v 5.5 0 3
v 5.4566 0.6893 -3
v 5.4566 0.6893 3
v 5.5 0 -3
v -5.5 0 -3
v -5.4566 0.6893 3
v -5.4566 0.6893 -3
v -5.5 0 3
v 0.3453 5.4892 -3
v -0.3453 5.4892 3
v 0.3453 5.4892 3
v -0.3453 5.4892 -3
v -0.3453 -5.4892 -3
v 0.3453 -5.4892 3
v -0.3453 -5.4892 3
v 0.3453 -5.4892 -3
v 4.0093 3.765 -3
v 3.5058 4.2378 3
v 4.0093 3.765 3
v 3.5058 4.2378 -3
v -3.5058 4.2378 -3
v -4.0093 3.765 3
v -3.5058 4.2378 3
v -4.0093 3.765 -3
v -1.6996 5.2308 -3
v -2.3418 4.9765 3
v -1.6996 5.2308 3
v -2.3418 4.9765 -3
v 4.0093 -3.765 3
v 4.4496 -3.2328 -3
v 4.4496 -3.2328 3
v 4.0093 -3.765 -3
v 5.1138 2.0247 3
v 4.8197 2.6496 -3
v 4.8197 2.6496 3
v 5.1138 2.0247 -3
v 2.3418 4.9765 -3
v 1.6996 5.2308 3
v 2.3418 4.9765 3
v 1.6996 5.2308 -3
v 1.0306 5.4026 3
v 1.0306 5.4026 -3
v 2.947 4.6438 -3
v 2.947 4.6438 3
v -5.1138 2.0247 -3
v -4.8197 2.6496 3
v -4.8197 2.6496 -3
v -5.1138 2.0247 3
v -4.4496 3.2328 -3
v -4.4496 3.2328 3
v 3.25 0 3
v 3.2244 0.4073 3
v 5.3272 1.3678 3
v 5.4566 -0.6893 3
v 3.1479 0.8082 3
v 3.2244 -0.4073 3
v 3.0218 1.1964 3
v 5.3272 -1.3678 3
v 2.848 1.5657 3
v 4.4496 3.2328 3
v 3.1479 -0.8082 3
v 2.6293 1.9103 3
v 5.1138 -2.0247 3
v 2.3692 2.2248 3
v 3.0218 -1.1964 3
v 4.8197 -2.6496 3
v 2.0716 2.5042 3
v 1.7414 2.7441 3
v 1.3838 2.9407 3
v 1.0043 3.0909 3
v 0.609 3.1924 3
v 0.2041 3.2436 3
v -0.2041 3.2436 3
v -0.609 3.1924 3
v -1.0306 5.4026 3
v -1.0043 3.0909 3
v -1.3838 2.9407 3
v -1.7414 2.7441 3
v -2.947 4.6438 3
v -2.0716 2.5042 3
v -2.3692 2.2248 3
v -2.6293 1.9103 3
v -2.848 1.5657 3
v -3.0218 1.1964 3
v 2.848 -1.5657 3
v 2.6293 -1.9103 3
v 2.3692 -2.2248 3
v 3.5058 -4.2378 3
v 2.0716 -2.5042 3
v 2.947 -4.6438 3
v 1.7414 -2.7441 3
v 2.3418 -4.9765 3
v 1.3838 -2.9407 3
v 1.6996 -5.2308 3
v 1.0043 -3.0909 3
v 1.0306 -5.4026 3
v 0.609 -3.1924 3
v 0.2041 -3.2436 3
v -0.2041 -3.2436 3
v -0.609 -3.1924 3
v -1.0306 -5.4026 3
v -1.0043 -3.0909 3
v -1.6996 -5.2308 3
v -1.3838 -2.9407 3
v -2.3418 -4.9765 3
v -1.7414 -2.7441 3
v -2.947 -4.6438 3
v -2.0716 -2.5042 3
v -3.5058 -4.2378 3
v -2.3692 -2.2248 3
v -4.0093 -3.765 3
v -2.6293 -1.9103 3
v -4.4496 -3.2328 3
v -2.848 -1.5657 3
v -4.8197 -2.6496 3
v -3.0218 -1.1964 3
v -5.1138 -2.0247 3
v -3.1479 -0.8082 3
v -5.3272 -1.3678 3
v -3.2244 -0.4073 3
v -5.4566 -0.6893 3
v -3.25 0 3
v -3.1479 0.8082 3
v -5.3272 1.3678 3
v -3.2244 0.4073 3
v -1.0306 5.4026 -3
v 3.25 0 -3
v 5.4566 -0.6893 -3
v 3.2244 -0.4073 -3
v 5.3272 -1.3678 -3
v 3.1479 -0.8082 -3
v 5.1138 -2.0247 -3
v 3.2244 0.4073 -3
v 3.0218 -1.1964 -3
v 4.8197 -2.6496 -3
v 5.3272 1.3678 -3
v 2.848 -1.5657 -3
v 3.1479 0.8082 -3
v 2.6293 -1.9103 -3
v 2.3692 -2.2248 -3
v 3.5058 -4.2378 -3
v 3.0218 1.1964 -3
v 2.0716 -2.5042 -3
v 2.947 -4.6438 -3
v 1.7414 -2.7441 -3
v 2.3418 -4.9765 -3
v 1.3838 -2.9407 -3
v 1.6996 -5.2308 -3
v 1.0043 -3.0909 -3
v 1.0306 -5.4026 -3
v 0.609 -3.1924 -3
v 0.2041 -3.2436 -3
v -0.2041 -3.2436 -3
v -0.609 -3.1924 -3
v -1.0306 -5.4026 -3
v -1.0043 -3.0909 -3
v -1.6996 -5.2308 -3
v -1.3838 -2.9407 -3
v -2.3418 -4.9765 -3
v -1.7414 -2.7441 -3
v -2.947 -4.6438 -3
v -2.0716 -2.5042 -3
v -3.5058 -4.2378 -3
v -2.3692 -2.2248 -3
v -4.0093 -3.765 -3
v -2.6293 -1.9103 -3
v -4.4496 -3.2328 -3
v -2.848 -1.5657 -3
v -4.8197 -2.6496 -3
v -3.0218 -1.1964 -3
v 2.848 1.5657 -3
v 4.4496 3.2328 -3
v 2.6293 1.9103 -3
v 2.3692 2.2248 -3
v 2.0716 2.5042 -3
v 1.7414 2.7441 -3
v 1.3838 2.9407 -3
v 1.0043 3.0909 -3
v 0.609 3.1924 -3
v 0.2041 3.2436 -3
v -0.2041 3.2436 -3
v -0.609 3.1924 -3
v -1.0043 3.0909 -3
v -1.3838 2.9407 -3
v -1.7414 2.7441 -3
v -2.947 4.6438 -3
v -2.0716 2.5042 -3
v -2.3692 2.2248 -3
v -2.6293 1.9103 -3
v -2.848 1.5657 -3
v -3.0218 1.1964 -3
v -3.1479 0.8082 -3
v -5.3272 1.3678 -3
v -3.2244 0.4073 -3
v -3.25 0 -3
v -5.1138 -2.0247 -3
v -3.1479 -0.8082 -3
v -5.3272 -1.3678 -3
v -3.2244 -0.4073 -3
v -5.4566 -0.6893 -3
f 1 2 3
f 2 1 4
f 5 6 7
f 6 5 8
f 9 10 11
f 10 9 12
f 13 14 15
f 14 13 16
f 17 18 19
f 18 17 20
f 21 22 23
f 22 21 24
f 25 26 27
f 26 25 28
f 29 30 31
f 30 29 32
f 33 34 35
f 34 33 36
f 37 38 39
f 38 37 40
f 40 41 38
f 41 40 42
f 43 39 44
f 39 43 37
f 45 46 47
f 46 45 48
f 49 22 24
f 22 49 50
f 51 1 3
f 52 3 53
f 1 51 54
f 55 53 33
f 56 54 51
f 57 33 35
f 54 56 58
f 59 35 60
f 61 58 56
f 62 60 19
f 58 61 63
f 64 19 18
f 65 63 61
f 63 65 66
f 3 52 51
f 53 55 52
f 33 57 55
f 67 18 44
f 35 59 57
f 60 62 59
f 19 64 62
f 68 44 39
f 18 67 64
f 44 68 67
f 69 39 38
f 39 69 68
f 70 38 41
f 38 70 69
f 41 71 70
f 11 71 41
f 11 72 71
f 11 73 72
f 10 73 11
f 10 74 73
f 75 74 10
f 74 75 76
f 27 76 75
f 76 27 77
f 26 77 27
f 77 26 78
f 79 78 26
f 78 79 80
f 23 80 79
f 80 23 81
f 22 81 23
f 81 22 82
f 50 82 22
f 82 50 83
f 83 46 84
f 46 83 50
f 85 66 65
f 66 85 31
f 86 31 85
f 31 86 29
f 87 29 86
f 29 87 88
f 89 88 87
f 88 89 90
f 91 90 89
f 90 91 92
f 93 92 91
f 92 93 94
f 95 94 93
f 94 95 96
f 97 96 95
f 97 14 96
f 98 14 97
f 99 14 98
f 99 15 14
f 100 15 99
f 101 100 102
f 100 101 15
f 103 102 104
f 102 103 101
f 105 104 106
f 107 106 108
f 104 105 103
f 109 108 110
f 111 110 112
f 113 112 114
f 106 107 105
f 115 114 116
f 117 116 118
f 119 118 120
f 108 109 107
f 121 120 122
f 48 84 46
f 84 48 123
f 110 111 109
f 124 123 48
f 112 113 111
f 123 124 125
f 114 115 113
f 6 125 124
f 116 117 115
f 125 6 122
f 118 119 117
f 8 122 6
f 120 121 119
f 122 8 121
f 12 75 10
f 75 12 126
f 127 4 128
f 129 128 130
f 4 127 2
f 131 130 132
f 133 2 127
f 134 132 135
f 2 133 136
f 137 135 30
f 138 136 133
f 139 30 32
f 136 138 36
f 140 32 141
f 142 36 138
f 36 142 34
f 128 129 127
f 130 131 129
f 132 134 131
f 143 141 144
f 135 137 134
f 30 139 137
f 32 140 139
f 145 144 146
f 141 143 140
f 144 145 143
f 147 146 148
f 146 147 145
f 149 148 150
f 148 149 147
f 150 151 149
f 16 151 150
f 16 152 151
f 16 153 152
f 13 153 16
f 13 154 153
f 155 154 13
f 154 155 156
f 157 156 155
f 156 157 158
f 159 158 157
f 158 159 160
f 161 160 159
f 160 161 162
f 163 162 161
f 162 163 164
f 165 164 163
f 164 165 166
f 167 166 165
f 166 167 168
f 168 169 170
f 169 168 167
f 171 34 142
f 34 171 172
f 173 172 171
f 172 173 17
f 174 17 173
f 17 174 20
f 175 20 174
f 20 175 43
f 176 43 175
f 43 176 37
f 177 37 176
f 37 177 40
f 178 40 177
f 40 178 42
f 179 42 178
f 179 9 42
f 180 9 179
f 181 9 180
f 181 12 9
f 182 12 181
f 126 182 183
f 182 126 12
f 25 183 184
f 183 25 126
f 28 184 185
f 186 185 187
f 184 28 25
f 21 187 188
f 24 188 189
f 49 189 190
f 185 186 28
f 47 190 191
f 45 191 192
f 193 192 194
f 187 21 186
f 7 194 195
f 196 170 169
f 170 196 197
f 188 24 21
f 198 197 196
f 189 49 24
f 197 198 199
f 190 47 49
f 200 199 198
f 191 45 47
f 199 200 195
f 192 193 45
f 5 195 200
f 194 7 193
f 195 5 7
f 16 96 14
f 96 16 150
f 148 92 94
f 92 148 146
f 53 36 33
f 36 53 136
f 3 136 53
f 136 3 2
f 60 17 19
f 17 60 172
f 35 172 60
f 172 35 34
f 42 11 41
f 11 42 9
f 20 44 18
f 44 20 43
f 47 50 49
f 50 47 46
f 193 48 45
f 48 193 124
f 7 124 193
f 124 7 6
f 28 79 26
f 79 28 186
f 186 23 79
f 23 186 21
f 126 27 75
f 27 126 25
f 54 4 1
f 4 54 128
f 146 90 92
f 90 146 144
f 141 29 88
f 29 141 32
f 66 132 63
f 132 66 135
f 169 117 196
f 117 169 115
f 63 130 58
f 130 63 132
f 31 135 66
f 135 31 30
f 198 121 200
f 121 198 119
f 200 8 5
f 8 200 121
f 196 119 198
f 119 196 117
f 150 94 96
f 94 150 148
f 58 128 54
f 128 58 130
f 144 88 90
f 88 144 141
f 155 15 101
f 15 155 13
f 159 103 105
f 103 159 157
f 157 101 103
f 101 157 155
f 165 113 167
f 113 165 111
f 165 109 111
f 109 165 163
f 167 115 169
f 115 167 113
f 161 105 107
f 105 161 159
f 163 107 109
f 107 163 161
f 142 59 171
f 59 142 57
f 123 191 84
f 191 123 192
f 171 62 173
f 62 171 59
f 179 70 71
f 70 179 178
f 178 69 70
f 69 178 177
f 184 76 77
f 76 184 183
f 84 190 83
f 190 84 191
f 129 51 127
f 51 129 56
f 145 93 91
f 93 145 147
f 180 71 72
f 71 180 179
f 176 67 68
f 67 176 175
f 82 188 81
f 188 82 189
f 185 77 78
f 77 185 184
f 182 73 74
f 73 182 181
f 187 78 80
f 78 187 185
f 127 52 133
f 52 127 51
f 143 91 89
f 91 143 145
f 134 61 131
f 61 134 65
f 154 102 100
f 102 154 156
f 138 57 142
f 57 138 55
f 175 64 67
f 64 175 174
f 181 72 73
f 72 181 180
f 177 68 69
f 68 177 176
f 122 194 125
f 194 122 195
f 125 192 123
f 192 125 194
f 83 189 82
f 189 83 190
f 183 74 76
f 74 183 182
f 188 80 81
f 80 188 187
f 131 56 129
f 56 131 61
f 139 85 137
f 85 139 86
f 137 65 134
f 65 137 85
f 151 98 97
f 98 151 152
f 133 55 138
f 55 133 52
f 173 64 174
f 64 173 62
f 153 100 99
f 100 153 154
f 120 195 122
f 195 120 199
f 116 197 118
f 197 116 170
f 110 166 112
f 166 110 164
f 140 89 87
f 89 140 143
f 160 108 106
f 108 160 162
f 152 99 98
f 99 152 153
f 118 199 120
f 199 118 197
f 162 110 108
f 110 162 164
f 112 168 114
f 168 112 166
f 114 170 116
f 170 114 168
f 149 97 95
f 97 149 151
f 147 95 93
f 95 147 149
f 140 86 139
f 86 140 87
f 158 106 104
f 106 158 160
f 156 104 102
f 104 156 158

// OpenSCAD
$fn = 50;


difference() {
	union() {
		translate(v = [0, 0, -3.0000000000]) {
			cylinder(h = 6, r = 5.5000000000);
		}
	}
	union() {
		translate(v = [0, 0, -100.0000000000]) {
			cylinder(h = 200, r = 3.2500000000);
		}
	}
}
